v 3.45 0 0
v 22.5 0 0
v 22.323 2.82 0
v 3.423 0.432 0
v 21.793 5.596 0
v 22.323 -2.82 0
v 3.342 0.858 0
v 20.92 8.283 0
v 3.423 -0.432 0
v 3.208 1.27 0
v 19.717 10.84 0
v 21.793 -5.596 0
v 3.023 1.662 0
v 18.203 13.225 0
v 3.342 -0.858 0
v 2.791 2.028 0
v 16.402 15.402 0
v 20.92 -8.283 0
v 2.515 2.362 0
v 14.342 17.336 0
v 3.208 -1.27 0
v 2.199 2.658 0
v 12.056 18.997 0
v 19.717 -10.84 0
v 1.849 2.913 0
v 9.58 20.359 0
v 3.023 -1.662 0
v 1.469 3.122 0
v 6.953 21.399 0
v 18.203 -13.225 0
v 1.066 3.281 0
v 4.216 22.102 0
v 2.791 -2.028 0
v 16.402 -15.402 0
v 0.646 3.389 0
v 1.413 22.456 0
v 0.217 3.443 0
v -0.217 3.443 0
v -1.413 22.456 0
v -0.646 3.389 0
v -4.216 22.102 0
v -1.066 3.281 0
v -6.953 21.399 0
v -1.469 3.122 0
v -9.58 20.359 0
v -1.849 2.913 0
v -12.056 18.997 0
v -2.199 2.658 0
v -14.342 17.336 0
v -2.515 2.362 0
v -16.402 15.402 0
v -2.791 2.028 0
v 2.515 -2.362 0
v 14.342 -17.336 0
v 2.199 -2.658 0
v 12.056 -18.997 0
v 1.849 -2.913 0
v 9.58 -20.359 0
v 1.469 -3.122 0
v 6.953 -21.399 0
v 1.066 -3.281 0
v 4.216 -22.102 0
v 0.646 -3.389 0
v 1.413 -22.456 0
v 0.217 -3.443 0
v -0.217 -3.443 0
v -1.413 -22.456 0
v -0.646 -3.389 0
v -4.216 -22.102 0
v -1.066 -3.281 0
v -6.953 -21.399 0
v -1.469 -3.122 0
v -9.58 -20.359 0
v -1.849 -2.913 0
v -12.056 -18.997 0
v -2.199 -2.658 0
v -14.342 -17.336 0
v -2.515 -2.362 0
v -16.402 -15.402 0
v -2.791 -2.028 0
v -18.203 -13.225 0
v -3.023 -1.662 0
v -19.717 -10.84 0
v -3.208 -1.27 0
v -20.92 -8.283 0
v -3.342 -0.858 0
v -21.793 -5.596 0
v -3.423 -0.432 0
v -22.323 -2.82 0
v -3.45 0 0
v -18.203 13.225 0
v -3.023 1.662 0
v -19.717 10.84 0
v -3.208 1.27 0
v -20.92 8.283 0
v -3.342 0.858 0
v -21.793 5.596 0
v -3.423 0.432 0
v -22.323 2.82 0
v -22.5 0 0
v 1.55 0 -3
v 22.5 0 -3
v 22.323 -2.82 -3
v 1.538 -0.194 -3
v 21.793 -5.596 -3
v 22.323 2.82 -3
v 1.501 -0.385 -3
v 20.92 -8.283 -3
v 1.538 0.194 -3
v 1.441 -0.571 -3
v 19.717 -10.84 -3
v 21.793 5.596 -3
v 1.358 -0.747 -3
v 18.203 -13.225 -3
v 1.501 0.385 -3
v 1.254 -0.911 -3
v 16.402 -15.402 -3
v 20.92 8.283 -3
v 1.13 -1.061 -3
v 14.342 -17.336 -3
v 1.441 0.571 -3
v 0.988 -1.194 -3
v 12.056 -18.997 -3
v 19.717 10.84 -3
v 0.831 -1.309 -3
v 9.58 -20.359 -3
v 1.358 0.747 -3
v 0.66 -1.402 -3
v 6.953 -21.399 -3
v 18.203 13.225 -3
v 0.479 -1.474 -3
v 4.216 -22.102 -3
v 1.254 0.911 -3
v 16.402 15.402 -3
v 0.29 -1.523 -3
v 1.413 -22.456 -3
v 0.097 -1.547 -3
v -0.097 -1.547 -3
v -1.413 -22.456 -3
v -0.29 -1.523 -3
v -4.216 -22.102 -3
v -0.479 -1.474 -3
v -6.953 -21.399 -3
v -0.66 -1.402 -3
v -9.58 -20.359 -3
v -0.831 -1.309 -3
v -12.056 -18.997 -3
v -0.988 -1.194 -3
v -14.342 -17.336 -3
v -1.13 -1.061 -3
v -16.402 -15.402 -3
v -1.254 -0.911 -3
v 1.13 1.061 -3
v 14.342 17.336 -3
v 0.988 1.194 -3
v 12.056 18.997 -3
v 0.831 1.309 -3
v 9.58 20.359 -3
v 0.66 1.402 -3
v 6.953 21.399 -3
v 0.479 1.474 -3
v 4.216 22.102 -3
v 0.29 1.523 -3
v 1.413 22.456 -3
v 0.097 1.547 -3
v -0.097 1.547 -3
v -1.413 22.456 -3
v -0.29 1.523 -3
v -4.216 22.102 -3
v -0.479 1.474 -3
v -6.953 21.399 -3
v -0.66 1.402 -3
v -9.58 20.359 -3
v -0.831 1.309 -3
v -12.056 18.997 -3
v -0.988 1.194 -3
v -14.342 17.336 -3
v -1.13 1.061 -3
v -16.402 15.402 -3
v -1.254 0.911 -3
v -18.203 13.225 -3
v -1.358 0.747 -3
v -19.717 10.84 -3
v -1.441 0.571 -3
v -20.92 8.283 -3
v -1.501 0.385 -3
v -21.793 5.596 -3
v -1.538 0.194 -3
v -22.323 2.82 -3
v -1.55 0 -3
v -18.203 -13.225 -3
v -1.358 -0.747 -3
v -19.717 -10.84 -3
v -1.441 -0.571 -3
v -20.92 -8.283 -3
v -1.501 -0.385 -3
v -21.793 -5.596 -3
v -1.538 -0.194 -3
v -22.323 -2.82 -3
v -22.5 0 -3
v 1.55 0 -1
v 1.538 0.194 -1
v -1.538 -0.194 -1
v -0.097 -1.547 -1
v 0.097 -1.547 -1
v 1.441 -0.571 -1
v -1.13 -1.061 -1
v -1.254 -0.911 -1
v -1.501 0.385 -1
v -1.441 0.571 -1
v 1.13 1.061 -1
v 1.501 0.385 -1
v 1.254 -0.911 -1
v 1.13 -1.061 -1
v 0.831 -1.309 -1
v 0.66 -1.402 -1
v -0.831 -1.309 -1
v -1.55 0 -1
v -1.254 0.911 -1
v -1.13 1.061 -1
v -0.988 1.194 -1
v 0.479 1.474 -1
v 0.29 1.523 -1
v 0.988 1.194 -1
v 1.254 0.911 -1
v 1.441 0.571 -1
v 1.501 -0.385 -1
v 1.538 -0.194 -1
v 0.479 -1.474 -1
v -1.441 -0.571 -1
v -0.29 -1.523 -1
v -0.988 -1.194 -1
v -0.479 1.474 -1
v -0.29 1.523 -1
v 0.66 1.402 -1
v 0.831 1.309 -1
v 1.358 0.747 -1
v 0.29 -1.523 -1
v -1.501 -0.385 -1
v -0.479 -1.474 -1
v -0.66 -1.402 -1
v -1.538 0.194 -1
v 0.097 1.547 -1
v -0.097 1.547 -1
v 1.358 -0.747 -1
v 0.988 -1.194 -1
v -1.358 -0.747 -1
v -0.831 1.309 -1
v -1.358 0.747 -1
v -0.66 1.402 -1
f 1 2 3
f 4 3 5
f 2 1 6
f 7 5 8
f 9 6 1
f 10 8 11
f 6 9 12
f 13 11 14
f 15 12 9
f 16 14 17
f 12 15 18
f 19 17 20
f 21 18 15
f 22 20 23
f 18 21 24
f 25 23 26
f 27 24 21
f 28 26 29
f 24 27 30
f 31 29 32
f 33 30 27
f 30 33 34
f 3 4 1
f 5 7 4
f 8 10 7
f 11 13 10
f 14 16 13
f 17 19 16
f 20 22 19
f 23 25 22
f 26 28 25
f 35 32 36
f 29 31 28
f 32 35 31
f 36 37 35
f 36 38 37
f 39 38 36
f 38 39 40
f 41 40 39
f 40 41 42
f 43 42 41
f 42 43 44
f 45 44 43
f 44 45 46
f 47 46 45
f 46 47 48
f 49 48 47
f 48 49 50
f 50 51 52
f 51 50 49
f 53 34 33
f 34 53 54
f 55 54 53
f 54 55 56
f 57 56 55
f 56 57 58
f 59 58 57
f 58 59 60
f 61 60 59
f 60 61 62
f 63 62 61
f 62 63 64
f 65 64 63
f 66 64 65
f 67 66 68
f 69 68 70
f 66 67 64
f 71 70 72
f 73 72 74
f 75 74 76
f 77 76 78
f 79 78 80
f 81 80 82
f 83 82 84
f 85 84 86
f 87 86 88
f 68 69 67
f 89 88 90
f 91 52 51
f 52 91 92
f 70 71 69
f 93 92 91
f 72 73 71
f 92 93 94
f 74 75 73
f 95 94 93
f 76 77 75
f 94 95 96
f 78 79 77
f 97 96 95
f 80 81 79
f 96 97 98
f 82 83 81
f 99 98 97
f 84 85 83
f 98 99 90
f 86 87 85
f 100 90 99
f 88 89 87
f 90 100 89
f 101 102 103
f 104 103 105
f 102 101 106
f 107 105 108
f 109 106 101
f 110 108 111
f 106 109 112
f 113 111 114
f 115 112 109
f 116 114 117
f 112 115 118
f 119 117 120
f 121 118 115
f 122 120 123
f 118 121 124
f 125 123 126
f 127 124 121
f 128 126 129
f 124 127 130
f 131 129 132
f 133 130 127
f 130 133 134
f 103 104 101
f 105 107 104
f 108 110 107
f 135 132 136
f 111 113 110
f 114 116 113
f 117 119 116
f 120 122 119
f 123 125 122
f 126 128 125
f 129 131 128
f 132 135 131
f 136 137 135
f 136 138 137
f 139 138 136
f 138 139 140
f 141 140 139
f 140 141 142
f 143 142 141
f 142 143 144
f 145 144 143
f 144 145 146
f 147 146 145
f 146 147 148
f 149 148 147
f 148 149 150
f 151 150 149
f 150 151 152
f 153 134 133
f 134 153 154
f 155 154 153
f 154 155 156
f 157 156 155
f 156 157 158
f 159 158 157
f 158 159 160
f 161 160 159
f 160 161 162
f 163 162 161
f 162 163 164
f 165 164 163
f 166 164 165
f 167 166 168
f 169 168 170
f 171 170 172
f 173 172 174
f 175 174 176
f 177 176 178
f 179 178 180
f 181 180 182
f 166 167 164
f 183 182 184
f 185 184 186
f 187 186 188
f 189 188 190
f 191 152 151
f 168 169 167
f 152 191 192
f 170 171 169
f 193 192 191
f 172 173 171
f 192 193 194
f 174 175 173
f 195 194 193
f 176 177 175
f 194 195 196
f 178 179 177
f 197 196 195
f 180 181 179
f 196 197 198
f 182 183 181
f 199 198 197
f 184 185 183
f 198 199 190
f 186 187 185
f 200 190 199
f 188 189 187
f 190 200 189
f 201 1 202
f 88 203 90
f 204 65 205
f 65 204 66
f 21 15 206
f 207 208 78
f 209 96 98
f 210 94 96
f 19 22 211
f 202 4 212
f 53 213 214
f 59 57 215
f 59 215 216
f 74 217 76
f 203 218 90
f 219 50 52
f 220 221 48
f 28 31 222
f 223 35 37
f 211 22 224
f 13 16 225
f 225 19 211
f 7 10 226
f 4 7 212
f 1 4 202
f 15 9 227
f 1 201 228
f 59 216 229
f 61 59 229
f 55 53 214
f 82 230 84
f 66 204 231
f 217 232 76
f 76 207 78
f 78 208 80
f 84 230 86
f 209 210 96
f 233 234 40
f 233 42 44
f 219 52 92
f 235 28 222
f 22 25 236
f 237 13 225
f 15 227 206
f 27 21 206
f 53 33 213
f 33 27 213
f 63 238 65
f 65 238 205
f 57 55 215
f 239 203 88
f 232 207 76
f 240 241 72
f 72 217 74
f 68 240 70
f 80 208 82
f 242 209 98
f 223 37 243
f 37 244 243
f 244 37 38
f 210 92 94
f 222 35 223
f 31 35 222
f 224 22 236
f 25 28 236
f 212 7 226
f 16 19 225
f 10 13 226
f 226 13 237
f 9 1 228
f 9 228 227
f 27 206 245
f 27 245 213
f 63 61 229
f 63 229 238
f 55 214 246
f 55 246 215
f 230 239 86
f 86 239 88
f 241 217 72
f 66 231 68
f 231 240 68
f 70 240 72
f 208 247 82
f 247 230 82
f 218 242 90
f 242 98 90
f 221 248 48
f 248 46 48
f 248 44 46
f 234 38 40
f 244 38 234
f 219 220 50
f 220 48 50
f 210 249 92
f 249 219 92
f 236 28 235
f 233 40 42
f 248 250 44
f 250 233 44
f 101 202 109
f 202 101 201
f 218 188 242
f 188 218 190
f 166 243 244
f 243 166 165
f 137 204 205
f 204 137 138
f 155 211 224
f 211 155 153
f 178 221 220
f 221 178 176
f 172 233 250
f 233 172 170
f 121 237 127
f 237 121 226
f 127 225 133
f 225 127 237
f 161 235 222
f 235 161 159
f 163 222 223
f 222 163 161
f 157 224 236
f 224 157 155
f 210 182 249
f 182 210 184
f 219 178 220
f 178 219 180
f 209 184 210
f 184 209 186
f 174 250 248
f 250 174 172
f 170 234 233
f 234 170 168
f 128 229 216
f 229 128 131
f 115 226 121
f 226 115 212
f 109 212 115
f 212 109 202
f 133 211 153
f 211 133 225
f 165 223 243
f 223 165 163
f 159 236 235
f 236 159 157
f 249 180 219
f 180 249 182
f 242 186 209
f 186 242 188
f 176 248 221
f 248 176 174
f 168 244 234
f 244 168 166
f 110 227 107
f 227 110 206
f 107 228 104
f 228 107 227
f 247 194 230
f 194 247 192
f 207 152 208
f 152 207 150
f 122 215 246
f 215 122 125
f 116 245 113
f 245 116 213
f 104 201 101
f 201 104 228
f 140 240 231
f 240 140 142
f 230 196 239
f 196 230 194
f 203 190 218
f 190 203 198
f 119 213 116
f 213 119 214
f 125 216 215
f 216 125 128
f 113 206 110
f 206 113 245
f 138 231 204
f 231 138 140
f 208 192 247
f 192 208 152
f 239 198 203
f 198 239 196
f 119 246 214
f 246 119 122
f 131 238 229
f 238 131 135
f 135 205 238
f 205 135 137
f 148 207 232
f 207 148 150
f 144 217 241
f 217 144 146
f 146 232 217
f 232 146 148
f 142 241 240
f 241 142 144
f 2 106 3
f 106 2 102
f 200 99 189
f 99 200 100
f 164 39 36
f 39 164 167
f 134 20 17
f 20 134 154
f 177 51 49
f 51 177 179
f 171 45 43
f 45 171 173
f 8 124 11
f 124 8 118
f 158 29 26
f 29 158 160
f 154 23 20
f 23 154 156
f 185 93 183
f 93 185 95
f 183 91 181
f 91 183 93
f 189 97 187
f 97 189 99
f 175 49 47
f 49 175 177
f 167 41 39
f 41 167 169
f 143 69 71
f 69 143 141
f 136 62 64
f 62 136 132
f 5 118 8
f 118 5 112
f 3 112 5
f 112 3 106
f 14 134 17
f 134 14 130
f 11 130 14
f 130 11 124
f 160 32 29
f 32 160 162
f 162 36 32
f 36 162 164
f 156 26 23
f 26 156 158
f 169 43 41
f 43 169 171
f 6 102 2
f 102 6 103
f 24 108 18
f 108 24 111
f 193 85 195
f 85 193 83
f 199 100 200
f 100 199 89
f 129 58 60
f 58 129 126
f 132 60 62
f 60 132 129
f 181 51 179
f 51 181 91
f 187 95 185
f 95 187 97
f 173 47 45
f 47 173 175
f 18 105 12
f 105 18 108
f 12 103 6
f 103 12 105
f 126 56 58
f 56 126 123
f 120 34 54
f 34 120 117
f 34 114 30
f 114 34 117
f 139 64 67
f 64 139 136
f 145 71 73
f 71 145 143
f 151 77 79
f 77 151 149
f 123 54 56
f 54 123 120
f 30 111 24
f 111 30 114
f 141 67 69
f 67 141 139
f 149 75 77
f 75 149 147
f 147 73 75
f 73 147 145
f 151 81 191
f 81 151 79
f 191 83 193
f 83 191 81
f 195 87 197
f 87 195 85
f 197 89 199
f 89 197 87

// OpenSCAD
$fn = 50;


difference() {
	union() {
		translate(v = [0, 0, -3.0000000000]) {
			cylinder(h = 3, r = 22.5000000000);
		}
	}
	union() {
		translate(v = [0, 0, 0]) {
			rotate(a = [0, 0, 0]) {
				difference() {
					union() {
						translate(v = [0, 0, -3.0000000000]) {
							cylinder(h = 3, r = 1.2500000000);
						}
						translate(v = [0, 0, -1.0000000000]) {
							cylinder(h = 1.0000000000, r1 = 1.5500000000, r2 = 3.4500000000);
						}
						translate(v = [0, 0, -3.0000000000]) {
							cylinder(h = 3, r = 1.5500000000);
						}
						translate(v = [0, 0, -3.0000000000]) {
							cylinder(h = 3, r = 1.2500000000);
						}
					}
					union();
				}
			}
		}
	}
}
